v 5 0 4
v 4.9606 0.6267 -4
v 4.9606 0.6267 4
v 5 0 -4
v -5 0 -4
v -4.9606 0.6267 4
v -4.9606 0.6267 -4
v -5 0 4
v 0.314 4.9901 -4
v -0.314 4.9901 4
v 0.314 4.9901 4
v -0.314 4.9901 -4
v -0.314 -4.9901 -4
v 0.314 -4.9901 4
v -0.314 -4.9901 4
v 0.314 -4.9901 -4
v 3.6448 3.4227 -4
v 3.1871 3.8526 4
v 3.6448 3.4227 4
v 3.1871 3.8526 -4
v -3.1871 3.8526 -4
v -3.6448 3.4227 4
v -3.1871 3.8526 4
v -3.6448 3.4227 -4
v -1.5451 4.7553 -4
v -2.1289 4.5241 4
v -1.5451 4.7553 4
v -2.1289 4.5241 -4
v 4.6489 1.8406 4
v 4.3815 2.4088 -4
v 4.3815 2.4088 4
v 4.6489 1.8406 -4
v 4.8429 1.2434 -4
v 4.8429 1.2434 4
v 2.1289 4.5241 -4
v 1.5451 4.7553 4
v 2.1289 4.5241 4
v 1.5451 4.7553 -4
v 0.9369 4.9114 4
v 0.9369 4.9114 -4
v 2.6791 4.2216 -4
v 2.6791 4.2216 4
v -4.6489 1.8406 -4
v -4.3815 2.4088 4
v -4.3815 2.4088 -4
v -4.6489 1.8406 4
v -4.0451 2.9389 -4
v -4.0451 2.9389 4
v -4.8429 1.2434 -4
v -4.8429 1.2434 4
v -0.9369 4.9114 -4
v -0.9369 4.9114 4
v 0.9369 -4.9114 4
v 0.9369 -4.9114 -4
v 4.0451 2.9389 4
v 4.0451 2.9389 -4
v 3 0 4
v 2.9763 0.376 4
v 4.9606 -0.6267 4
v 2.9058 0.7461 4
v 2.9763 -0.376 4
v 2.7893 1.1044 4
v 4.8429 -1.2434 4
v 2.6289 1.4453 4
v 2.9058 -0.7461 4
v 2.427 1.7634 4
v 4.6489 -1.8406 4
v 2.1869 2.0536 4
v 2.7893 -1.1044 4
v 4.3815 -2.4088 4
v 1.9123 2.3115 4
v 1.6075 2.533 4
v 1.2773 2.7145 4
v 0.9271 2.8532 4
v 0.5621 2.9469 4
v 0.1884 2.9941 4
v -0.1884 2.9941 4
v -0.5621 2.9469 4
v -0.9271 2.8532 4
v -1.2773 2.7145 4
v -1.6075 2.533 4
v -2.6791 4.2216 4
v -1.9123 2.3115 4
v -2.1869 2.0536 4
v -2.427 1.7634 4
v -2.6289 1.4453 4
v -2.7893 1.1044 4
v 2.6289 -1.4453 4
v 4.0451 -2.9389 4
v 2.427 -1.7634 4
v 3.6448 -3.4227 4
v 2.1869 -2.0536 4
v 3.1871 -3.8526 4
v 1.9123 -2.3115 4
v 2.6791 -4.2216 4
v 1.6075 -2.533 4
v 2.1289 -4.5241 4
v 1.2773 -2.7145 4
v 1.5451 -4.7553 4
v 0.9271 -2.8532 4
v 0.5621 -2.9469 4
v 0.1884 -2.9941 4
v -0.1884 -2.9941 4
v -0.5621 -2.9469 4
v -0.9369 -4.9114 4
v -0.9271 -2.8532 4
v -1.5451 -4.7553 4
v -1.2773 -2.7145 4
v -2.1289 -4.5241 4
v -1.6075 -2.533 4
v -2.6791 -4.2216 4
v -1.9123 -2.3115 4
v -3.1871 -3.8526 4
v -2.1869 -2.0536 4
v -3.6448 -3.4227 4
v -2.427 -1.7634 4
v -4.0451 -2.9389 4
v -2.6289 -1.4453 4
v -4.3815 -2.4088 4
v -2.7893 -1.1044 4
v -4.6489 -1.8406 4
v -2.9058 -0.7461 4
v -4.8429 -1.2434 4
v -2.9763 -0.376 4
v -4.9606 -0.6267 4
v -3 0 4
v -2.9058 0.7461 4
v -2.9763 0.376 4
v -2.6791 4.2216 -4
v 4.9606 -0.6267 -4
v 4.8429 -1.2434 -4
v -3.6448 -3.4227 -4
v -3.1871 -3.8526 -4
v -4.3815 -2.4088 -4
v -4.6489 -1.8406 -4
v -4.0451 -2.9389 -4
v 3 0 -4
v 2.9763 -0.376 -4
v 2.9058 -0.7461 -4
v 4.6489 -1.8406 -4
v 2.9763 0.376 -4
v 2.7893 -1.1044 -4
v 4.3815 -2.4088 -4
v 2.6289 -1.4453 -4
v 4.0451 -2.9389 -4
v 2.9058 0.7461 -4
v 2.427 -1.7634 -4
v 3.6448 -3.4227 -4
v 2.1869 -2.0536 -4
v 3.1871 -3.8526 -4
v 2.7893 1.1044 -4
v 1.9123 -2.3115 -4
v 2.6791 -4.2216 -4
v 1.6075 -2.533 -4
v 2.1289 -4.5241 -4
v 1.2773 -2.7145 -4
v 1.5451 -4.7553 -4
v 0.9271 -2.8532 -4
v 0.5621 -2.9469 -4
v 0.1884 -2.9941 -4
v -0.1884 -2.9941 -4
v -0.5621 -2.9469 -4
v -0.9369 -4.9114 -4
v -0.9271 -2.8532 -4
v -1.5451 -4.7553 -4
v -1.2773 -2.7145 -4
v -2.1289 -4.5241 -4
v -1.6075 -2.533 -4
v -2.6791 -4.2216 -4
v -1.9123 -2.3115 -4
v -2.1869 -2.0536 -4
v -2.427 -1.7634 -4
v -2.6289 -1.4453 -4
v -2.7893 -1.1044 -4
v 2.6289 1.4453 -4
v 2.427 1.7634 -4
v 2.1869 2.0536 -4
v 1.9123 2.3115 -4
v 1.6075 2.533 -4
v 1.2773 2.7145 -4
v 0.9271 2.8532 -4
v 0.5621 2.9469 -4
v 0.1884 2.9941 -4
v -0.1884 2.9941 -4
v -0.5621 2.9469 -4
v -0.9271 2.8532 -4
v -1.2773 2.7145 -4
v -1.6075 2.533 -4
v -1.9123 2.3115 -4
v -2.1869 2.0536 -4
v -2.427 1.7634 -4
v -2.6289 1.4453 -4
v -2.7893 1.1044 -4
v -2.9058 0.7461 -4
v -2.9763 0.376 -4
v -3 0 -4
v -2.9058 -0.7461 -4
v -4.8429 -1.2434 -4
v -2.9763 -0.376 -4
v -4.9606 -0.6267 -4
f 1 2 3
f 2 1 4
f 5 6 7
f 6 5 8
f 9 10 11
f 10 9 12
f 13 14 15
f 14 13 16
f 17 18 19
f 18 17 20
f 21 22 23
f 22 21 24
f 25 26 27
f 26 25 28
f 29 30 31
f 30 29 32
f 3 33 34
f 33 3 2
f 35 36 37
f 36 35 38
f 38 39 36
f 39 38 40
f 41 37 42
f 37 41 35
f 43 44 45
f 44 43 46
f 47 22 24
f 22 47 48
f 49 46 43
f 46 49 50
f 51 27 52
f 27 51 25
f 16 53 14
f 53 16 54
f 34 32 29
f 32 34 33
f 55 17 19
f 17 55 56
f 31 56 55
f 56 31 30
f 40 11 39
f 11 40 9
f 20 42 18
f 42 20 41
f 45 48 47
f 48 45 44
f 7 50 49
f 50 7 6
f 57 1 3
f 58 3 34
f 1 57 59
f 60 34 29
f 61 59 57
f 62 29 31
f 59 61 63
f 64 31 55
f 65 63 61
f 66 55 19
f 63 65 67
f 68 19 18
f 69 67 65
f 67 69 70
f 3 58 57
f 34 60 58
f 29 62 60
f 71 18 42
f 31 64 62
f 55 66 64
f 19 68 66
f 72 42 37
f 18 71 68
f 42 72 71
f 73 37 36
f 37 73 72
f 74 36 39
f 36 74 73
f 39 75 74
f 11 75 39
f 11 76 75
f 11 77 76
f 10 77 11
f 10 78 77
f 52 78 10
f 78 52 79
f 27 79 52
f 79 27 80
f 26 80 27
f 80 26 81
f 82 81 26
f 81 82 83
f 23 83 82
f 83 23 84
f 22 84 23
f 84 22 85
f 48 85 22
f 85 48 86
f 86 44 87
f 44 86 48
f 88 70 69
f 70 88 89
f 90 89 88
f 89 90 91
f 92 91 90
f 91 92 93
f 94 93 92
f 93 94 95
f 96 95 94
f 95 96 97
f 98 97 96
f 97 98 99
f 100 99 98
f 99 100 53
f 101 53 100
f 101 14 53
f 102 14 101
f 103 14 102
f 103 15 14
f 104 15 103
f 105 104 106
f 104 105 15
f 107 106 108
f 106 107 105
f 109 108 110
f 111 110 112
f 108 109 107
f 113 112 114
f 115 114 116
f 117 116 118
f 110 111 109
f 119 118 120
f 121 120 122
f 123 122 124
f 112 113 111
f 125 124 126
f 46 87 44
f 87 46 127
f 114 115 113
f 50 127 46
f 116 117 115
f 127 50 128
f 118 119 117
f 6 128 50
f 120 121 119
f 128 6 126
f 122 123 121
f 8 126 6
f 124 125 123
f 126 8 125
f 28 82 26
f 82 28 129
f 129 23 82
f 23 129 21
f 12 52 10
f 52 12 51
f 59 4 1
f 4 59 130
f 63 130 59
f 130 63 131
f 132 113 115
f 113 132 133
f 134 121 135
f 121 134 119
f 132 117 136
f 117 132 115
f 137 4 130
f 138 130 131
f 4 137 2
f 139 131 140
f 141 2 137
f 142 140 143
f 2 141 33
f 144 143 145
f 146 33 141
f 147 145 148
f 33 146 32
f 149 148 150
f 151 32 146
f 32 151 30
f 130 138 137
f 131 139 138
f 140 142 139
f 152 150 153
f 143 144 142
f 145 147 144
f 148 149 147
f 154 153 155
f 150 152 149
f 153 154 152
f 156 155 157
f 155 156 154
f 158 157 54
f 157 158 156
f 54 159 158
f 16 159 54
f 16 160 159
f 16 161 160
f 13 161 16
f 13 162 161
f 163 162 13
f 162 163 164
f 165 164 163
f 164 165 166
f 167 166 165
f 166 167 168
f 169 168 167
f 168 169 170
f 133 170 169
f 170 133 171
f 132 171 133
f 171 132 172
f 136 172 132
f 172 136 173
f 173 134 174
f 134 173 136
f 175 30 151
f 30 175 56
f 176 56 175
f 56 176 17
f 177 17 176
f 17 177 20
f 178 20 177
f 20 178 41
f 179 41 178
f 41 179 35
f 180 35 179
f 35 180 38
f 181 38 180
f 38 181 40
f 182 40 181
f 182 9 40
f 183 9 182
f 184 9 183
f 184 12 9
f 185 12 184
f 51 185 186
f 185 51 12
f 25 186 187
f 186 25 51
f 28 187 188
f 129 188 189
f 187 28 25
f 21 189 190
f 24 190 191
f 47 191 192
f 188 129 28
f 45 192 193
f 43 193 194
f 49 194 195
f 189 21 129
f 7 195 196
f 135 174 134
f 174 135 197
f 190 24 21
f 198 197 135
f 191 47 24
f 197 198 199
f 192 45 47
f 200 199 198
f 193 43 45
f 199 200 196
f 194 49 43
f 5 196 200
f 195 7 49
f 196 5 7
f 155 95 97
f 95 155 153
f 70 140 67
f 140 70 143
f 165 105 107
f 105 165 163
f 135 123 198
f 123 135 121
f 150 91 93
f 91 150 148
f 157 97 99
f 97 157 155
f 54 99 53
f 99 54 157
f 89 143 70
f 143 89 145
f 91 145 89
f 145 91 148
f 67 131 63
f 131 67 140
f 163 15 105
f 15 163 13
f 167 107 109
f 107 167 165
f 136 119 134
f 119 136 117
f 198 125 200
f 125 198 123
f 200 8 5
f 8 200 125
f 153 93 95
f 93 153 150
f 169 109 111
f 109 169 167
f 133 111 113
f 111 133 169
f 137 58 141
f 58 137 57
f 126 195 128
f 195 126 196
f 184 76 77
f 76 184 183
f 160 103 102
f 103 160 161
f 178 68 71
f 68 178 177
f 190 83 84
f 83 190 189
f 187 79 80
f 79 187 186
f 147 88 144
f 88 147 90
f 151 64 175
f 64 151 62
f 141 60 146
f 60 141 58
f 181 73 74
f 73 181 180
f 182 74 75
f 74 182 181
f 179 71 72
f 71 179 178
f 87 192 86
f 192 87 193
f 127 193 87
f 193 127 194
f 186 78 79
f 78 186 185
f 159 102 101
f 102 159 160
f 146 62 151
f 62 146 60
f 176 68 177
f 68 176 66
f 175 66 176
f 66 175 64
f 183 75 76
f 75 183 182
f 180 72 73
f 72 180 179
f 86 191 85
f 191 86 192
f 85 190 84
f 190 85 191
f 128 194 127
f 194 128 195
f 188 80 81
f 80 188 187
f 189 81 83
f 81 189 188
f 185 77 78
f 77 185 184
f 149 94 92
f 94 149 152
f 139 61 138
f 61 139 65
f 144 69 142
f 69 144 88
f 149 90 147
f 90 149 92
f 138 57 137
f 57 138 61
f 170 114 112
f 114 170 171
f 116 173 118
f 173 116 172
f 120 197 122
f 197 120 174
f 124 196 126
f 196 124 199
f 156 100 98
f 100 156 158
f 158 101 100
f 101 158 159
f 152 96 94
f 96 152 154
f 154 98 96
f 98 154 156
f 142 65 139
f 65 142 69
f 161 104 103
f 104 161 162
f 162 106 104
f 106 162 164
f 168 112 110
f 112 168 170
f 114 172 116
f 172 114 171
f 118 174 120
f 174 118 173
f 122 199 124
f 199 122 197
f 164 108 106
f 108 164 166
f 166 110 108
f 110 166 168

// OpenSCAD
$fn = 50;


difference() {
	union() {
		translate(v = [0, 0, -4.0000000000]) {
			cylinder(h = 8, r = 5.0000000000);
		}
	}
	union() {
		translate(v = [0, 0, -100.0000000000]) {
			cylinder(h = 200, r = 3);
		}
	}
}
